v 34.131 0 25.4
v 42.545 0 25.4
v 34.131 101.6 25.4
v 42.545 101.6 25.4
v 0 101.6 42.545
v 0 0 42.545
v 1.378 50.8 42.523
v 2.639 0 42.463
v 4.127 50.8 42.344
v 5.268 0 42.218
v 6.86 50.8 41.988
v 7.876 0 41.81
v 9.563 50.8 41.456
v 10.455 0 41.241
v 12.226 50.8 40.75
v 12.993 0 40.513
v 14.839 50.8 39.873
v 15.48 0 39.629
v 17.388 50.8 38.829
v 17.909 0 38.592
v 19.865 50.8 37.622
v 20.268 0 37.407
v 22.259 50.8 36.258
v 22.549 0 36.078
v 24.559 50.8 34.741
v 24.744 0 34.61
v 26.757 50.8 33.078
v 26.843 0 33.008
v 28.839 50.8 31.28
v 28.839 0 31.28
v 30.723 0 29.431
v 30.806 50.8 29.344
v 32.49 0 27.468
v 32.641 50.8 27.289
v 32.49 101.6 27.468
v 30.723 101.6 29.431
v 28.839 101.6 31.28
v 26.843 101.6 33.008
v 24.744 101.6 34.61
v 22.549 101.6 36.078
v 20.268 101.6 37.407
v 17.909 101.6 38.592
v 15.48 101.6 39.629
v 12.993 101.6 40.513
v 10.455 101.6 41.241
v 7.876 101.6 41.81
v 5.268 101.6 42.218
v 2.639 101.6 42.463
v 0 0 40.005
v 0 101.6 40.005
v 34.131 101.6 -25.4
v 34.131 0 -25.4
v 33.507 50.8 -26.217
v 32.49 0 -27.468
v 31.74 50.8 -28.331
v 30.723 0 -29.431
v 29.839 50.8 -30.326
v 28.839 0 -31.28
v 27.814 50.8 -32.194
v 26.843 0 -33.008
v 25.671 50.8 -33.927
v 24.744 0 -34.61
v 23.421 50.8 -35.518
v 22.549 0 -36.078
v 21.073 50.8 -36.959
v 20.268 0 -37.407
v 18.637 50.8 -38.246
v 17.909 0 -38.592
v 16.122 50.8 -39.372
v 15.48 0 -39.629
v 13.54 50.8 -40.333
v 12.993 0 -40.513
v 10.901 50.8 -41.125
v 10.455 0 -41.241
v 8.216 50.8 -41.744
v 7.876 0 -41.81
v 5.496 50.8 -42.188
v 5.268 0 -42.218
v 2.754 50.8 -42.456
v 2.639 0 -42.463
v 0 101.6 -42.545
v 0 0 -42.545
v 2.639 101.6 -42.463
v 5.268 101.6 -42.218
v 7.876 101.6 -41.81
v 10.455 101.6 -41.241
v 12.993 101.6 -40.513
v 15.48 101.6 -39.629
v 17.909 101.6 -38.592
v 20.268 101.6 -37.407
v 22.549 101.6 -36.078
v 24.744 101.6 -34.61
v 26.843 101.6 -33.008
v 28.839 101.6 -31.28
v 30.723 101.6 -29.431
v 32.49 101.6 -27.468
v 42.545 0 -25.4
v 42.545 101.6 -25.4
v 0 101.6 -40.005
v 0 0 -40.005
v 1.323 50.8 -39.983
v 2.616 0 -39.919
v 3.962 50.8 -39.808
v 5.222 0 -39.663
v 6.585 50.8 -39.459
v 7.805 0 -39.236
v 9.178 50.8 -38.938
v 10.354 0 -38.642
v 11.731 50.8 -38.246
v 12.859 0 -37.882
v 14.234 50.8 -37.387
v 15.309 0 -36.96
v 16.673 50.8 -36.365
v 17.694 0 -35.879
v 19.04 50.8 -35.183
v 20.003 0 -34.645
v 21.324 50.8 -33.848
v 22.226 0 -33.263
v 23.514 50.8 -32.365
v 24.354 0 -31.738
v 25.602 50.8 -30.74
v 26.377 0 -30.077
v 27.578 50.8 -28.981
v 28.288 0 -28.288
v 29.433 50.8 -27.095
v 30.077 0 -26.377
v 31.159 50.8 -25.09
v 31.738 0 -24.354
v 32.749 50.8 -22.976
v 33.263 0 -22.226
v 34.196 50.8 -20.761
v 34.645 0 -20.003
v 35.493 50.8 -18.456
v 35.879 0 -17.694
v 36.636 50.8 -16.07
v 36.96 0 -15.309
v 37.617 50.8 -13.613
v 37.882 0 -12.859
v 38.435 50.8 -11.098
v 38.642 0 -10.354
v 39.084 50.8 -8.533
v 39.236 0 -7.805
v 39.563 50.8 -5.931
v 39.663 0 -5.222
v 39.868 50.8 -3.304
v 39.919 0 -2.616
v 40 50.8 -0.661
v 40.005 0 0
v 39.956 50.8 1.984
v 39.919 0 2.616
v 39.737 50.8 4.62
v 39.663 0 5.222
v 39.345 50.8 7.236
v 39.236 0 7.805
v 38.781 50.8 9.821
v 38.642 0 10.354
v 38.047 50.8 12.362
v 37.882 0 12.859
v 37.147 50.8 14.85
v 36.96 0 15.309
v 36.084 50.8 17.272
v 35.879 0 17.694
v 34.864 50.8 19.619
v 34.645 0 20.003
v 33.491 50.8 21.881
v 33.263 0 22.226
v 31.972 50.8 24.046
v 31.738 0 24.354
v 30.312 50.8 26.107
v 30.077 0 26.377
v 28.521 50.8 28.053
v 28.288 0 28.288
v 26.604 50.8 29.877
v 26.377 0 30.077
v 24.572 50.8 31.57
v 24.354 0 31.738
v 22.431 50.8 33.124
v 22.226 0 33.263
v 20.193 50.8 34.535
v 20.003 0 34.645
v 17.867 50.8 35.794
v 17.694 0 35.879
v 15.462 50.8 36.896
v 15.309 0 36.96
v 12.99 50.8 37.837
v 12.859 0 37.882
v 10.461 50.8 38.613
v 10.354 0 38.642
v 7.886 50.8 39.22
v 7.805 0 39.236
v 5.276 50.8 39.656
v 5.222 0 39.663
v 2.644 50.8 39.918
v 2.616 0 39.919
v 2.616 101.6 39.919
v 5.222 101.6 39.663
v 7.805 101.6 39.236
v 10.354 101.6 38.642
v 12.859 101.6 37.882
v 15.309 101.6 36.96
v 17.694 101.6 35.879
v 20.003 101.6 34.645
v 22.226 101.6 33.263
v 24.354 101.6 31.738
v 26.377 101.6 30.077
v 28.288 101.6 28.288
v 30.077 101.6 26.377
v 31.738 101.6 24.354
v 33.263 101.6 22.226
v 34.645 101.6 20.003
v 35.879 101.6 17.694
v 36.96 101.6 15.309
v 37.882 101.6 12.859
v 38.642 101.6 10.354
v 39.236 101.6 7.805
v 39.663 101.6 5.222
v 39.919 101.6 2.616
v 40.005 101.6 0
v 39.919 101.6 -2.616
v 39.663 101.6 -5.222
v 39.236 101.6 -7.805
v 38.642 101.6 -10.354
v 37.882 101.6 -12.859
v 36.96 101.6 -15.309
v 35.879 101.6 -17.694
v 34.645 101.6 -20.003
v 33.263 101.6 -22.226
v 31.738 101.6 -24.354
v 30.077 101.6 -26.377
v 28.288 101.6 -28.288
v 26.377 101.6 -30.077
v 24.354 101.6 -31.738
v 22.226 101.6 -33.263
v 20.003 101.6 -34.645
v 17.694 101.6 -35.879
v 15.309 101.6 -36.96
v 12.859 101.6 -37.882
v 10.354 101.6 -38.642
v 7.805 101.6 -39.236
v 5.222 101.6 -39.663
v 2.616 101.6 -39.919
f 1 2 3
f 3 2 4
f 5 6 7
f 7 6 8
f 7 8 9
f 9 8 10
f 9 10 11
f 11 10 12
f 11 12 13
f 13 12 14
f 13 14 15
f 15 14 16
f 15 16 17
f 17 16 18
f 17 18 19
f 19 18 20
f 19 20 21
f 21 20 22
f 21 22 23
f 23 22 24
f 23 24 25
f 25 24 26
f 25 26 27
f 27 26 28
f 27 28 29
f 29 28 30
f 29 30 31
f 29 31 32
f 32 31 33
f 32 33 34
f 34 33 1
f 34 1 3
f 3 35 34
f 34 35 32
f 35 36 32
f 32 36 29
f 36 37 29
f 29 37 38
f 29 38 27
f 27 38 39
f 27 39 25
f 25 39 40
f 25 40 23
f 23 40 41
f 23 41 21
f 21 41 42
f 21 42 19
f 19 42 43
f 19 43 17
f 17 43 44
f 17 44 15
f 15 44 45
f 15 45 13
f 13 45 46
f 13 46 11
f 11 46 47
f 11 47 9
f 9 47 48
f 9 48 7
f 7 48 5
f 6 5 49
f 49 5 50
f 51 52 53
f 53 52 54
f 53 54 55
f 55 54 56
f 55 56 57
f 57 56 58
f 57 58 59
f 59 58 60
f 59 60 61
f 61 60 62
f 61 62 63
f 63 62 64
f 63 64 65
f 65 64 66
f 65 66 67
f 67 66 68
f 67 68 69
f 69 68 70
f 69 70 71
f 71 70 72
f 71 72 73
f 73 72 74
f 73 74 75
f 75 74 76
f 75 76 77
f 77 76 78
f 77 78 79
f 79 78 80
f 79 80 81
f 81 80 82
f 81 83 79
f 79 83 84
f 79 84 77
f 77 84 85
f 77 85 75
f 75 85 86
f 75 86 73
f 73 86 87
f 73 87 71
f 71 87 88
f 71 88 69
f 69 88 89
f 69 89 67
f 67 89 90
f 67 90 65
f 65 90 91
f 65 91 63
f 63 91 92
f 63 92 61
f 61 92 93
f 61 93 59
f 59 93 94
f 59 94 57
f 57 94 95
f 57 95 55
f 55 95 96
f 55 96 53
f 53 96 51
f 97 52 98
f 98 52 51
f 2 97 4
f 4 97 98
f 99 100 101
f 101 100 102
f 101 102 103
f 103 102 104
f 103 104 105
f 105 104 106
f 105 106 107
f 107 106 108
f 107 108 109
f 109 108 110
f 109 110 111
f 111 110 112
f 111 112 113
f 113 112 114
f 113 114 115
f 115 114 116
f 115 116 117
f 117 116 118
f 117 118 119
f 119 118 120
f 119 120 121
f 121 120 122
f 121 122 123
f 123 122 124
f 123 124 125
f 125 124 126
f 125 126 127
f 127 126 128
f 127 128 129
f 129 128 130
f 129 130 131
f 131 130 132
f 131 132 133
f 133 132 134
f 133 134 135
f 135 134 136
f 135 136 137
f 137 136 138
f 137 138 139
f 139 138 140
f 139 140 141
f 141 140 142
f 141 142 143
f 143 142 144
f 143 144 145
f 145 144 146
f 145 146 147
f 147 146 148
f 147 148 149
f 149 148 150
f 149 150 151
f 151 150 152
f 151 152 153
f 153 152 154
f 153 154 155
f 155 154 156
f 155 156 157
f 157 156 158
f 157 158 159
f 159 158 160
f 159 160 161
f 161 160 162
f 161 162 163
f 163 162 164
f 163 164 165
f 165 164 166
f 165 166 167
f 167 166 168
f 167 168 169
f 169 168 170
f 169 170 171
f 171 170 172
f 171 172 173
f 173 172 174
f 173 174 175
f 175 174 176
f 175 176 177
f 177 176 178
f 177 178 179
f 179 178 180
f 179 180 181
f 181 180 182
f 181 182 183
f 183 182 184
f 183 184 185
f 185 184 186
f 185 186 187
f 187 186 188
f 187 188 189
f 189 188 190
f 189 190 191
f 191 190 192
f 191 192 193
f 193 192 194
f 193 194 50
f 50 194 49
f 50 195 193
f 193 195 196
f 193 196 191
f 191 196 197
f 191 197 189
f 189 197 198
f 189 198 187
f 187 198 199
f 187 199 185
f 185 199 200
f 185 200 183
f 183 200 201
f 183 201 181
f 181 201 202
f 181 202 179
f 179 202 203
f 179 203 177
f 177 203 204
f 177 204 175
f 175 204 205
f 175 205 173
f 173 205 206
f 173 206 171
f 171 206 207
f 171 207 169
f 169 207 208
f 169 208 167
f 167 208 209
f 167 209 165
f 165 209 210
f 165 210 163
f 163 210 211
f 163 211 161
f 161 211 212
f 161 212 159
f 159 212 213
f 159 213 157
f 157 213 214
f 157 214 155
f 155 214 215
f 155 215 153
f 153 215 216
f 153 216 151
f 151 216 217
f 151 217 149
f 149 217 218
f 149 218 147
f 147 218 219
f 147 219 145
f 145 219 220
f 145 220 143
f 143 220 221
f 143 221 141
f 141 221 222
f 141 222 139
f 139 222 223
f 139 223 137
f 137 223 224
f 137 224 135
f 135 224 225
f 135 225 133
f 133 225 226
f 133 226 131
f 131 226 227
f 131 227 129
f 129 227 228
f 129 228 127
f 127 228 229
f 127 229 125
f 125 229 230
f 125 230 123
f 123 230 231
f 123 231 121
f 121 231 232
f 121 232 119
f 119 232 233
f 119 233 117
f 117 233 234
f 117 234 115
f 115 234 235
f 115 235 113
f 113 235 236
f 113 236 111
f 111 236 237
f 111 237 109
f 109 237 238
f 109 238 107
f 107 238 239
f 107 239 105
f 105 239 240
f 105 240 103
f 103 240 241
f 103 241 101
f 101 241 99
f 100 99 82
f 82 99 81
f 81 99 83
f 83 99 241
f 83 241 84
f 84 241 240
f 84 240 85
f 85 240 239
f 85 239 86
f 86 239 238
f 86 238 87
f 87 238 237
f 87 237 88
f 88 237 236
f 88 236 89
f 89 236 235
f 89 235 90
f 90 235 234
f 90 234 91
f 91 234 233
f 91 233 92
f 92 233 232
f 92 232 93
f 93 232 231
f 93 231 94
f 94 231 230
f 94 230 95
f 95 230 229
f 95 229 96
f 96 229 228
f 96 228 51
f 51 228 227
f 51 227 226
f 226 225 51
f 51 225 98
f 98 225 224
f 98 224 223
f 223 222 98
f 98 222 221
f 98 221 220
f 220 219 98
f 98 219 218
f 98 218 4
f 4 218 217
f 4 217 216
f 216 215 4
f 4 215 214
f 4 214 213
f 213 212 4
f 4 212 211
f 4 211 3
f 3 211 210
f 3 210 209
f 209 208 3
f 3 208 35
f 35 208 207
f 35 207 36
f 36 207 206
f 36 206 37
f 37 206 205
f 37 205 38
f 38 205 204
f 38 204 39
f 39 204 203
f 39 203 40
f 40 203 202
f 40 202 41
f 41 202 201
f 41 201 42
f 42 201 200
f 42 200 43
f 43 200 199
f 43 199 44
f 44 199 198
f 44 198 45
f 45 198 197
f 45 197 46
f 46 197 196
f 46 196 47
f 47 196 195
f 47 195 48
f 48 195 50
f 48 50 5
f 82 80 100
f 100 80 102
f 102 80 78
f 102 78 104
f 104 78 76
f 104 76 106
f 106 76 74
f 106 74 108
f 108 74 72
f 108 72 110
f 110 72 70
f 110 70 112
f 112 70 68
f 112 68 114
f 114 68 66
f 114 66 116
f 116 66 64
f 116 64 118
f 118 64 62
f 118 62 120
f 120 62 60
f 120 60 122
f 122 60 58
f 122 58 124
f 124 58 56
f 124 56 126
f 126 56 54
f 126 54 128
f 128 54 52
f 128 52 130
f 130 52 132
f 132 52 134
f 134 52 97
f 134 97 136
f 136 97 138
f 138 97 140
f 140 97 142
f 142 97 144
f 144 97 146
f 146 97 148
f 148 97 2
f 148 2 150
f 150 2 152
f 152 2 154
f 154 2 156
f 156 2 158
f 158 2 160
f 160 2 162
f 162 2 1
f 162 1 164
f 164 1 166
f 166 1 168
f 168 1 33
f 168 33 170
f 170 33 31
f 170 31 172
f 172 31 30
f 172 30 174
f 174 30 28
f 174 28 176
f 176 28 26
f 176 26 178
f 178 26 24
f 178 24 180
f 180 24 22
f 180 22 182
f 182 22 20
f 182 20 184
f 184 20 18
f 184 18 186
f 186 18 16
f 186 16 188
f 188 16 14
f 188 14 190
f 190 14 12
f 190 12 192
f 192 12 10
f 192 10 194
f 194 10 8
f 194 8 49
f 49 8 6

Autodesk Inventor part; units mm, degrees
ref_plane "YZ Plane" through (0, 0, 0) normal (1, 0, 0) x (0, 1, 0)
ref_plane "XZ Plane" through (0, 0, 0) normal (0, 1, 0) x (-1, 0, 0)
ref_plane "XY Plane" through (0, 0, 0) normal (0, 0, 1) x (1, 0, 0)
sketch "Sketch1" plane through (0, 0, 0) normal (0, 1, 0) x (-1, 0, 0)
  arc A0 (0, 42.545) -> (0, -42.545) centre (0, 0) ccw
  arc A1 (0, 40.005) -> (0, -40.005) centre (0, 0) ccw
  line L0 (0, 42.545) -> (0, 40.005)
  line L1 (0, -40.005) -> (0, -42.545)
  line L2 (-40.005, 0) -> (-42.545, 0)
  line L3 (-42.545, 0) -> (-42.545, -25.4)
  line L4 (-42.545, -25.4) -> (-34.1309, -25.4)
  line L5 (-40.005, 0) -> (-42.545, 0)
  line L6 (-42.545, 0) -> (-42.545, 25.4)
  line L7 (-42.545, 25.4) -> (-34.1309, 25.4)
  dimension "d0" = 85.09
  dimension "d1" = 80.01
  dimension "d2" = 25.4
  dimension "d3" = 25.4
extrude "Extrusion1" add sketch "Sketch1" along normal blind 101.6
properties part number "BlockSlideTestTube"
